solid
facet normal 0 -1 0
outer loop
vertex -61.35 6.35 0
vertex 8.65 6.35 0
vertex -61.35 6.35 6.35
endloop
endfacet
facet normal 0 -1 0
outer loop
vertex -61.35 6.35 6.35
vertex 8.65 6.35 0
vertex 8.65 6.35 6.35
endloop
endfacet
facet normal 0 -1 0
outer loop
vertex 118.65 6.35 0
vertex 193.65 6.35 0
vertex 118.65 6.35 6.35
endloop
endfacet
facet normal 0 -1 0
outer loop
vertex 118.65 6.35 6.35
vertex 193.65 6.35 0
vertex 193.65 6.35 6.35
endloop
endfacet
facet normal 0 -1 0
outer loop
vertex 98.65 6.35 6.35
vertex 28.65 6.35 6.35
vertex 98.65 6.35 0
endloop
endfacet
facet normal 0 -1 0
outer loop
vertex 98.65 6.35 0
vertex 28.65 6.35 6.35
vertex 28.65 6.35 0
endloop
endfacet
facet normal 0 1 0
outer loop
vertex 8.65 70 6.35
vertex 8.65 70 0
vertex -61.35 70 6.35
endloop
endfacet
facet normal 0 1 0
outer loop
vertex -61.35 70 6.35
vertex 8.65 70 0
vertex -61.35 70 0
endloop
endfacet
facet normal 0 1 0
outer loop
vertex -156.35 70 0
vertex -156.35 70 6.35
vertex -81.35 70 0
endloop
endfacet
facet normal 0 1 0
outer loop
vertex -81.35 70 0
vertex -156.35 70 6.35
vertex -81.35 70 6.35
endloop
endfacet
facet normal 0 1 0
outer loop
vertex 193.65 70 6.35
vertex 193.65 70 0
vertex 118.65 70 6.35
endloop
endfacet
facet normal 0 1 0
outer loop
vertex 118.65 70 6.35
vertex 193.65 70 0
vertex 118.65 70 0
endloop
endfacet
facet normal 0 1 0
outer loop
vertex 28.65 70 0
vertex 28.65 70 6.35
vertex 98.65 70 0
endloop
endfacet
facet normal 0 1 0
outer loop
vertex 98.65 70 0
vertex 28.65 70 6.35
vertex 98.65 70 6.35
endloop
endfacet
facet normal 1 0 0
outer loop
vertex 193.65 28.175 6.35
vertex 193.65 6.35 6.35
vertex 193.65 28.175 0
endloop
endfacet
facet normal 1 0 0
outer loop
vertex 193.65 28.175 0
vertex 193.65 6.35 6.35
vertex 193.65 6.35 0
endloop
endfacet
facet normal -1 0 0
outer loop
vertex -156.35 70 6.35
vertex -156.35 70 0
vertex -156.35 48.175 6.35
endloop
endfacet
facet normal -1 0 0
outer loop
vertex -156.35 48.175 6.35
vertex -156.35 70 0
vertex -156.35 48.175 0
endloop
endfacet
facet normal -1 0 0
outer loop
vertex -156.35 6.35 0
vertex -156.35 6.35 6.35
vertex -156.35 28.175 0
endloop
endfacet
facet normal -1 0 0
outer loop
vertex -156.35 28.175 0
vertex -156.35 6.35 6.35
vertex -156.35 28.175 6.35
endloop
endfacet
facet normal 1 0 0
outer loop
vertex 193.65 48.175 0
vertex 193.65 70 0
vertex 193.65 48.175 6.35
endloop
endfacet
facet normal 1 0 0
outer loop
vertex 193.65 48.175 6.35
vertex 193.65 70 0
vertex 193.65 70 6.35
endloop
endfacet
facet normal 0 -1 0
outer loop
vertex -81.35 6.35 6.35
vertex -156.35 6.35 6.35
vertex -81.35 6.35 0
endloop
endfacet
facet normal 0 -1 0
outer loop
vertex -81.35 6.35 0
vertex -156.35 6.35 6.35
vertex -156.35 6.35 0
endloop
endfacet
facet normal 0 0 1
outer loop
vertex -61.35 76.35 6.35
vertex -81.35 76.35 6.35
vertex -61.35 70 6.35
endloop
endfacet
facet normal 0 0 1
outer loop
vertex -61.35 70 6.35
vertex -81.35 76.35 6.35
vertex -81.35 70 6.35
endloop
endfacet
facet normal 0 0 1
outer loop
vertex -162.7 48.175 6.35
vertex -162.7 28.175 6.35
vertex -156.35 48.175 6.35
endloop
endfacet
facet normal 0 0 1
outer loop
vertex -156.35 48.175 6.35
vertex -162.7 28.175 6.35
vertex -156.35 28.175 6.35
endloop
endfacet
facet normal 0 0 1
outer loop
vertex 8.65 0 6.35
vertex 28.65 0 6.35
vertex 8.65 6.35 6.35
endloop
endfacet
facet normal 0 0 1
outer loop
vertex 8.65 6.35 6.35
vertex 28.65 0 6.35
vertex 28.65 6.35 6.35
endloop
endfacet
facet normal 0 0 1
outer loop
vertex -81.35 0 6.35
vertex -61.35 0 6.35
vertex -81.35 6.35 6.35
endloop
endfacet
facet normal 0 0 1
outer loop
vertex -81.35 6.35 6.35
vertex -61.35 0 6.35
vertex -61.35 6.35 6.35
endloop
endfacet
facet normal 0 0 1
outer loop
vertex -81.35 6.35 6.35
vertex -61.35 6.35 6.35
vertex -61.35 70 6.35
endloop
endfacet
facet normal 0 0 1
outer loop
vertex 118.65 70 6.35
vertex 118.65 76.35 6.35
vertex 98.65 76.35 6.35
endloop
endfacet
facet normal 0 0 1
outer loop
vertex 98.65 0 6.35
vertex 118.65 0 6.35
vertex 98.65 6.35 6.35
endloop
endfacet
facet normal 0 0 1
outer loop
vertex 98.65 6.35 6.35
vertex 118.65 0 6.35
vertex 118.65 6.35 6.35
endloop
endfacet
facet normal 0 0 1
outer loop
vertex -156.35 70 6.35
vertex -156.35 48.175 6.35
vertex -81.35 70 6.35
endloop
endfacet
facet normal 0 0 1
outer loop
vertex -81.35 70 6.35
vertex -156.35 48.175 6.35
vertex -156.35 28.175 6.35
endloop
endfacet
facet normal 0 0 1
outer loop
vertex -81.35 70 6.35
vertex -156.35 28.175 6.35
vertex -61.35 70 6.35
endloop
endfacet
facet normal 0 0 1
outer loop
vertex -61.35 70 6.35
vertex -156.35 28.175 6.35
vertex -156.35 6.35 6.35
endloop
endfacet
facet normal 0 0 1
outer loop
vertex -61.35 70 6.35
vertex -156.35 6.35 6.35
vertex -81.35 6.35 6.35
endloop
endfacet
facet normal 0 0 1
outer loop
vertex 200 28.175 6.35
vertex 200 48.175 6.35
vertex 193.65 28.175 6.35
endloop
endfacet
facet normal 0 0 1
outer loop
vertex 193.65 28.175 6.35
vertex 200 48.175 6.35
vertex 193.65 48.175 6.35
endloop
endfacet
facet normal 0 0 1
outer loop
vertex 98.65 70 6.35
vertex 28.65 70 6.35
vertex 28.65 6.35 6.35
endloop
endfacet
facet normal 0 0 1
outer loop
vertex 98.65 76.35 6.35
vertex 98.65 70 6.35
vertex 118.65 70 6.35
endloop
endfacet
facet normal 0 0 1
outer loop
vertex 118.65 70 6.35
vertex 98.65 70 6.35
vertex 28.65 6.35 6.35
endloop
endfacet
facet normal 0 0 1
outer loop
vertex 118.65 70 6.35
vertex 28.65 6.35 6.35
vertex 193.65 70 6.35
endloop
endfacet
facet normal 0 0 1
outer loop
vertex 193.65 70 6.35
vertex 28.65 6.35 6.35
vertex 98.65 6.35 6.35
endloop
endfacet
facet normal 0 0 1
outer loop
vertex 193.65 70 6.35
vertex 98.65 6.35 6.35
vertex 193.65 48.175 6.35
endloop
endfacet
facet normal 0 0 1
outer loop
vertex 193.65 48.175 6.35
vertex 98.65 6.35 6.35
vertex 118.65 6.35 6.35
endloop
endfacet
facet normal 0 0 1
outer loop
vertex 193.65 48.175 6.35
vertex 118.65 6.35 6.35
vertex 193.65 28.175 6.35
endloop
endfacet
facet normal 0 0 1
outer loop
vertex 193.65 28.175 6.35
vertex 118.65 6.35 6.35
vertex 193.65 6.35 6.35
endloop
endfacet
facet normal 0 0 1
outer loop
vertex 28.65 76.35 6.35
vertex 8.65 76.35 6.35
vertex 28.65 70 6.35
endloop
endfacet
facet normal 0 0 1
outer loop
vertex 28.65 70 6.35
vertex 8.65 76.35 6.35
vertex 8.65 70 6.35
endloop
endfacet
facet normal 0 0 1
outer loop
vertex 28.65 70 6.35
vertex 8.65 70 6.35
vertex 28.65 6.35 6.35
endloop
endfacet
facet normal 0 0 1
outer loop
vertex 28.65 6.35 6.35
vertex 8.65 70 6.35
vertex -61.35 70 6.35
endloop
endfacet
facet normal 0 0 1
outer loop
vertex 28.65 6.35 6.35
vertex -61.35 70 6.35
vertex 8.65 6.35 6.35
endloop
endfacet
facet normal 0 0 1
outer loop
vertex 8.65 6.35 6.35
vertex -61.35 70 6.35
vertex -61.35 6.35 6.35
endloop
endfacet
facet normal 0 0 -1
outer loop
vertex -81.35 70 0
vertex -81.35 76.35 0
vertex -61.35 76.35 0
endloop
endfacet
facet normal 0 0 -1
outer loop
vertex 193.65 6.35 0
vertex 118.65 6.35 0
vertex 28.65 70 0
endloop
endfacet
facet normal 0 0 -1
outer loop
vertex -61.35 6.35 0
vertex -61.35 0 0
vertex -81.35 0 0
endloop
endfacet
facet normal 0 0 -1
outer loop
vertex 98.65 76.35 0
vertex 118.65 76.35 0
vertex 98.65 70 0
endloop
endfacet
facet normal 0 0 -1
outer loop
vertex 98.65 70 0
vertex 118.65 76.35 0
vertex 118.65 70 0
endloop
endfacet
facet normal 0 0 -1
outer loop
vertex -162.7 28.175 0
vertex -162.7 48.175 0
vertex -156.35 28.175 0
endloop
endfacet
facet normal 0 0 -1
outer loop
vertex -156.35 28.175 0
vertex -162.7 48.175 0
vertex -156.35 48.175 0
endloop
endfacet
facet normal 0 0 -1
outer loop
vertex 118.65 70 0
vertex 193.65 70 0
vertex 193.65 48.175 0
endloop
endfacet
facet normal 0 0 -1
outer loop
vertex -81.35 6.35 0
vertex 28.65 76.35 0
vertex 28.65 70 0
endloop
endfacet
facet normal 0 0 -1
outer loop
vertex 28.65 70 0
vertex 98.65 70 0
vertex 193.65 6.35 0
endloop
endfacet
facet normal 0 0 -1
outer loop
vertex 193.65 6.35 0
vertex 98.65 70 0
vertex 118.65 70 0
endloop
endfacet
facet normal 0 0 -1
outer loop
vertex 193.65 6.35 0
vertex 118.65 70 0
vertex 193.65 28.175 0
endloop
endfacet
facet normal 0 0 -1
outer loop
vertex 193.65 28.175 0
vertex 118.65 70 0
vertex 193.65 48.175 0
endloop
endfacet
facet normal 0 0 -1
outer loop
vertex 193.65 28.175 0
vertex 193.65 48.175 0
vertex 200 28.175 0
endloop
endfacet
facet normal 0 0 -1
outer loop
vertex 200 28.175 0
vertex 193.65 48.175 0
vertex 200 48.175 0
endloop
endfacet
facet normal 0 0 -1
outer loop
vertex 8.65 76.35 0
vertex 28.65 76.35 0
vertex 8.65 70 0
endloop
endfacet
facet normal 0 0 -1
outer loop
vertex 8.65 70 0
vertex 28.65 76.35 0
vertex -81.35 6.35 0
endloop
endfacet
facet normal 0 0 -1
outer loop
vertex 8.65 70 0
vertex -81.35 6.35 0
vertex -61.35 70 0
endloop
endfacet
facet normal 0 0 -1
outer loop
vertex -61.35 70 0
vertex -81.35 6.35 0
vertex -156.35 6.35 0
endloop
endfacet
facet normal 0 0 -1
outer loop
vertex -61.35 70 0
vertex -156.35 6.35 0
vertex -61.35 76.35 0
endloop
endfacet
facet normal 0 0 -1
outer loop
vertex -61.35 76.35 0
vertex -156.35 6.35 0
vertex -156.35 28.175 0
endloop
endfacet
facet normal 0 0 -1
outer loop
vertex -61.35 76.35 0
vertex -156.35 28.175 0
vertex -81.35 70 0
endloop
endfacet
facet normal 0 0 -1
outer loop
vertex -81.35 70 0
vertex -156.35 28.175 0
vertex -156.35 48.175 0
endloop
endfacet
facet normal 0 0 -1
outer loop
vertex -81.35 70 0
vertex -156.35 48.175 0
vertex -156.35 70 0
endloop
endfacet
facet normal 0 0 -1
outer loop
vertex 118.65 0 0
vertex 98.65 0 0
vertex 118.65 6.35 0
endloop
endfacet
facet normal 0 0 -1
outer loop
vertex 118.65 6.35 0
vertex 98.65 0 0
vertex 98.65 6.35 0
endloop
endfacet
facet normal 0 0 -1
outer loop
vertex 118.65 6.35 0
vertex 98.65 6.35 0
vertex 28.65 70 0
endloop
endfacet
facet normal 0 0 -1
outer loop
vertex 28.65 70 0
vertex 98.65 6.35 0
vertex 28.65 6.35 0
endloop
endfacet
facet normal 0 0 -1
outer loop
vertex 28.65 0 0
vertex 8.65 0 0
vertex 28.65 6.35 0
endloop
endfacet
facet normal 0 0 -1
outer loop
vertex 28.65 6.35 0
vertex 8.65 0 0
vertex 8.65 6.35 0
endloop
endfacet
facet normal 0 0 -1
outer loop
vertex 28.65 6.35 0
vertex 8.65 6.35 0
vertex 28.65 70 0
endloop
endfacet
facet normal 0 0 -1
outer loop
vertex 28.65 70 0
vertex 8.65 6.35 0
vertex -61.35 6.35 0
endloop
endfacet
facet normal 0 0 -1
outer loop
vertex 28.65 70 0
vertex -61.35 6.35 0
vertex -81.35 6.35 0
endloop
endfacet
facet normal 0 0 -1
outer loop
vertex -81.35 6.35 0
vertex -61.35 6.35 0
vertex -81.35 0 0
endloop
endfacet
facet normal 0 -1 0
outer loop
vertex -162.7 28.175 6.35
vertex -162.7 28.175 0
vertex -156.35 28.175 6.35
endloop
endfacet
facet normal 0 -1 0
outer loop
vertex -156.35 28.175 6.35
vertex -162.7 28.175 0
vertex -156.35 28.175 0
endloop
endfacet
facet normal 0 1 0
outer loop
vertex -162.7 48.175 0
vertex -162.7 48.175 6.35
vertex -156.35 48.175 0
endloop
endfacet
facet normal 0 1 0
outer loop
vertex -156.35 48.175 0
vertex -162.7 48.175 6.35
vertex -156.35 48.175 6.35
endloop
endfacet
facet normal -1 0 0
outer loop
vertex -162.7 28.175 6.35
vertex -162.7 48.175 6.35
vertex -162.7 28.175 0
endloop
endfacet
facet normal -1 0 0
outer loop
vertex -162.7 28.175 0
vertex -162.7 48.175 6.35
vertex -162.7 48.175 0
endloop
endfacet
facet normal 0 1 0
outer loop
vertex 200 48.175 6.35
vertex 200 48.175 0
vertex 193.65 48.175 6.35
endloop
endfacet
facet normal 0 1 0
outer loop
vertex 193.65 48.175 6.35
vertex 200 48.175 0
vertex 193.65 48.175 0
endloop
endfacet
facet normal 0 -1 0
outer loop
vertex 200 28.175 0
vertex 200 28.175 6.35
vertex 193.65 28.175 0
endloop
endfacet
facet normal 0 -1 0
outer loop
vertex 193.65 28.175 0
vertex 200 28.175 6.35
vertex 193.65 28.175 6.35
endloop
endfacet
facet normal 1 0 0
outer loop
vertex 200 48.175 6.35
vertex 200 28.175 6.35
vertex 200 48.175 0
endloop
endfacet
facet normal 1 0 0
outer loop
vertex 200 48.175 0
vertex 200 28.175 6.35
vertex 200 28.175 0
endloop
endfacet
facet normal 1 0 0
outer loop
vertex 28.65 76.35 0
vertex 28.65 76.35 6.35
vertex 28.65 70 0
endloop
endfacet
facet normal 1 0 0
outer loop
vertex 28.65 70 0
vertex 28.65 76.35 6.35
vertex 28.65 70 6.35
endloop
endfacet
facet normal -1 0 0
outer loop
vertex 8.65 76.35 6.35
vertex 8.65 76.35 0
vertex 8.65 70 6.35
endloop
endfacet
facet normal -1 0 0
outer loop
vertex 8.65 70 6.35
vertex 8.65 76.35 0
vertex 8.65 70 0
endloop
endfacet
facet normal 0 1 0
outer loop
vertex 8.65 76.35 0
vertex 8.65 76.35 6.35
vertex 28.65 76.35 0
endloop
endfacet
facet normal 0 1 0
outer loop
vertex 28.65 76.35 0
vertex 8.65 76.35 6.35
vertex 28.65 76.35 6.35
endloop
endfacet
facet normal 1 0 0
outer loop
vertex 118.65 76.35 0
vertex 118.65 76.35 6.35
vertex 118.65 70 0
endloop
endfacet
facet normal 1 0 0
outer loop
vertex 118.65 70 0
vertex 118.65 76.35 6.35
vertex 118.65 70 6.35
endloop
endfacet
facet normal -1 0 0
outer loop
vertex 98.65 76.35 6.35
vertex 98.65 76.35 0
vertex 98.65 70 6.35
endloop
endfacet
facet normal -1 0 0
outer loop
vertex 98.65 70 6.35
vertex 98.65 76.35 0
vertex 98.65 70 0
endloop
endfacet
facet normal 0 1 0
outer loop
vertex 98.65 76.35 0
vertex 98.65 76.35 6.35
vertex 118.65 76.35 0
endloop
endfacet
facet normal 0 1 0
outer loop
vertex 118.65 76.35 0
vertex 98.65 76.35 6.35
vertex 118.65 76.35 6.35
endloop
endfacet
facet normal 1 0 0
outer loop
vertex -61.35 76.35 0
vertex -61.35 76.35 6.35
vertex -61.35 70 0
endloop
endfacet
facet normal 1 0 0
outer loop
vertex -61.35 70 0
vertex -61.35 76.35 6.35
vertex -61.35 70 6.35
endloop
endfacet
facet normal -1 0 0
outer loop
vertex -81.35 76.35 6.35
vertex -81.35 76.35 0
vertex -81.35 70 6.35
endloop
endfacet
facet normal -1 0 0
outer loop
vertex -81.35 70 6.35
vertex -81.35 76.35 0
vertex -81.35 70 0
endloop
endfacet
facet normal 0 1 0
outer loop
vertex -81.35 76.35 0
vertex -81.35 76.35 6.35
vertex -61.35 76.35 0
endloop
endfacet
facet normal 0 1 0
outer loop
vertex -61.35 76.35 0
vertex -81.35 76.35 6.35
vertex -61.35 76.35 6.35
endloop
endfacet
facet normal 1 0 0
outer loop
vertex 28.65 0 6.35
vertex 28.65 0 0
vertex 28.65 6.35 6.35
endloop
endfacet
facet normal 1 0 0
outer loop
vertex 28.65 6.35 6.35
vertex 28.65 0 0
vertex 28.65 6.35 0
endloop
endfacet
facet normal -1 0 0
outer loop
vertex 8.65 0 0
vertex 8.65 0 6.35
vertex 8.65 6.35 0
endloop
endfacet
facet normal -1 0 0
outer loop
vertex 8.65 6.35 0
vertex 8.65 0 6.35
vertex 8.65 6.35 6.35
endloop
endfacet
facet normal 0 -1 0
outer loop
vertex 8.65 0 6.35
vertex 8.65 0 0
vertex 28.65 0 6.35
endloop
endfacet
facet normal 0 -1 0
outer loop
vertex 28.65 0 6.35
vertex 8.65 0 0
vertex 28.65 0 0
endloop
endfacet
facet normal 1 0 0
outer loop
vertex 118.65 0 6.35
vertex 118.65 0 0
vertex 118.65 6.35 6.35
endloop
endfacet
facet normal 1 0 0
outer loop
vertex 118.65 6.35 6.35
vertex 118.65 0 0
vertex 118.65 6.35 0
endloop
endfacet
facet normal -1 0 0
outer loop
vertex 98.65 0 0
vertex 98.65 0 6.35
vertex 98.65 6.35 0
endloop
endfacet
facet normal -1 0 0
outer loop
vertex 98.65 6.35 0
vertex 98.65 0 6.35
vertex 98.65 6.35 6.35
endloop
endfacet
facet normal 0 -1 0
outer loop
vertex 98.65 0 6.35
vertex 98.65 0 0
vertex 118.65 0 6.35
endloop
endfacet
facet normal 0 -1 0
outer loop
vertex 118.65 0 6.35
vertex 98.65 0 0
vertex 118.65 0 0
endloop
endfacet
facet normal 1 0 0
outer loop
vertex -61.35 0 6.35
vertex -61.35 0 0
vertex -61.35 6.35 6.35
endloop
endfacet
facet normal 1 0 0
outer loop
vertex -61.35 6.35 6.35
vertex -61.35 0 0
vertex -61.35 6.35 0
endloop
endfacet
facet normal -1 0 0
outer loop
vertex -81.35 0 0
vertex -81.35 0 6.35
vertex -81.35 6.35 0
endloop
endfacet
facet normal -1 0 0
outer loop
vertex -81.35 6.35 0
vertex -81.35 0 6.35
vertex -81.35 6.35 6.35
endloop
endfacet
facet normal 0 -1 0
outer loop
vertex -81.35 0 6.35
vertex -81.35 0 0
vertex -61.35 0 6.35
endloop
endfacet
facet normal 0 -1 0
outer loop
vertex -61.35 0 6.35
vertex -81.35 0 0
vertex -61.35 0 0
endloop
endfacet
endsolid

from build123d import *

# Parameters (mm, degrees)
CROQUIS1_W              = 350
CROQUIS1_H              = 63.65
SALIENTE_EXTRUIR1_DEPTH = 6.35
CROQUIS2_W              = 6.35
CROQUIS2_H              = 20
SALIENTE_EXTRUIR2_DEPTH = 6.35
CROQUIS3_W              = 20
CROQUIS3_H              = 6.35
SALIENTE_EXTRUIR3_DEPTH = 6.35


with BuildPart() as part:
    # Croquis1 → Saliente-Extruir1 (new body)
    with BuildSketch(Plane(origin=(0, 0, 0), x_dir=(-1, 0, 0), z_dir=(0, 0, 1))):
        with Locations((-18.650000026, -38.175)):
            Rectangle(CROQUIS1_W, CROQUIS1_H)
    extrude(amount=SALIENTE_EXTRUIR1_DEPTH)

    # Croquis2 → Saliente-Extruir2 (add)
    with BuildSketch(Plane.ZY.offset(156.349999974)):
        with Locations((3.175, 38.175)):
            Rectangle(CROQUIS2_W, CROQUIS2_H)
    saliente_extruir2 = extrude(amount=SALIENTE_EXTRUIR2_DEPTH)

    # Simetría1: Saliente-Extruir2 across plane
    add(saliente_extruir2.mirror(Plane(origin=(18.650000026, 0, 0), x_dir=(0, 0, 1), z_dir=(1, 0, 0))))

    # Croquis3 → Saliente-Extruir3 (add)
    with BuildSketch(Plane(origin=(0, 70, 0), x_dir=(1, 0, 0), z_dir=(0, 1, 0))):
        with Locations((18.650000026, -3.175)):
            Rectangle(CROQUIS3_W, CROQUIS3_H)
        with Locations((108.650000026, -3.175)):
            Rectangle(CROQUIS3_W, CROQUIS3_H)
        with Locations((-71.349999974, -3.175)):
            Rectangle(CROQUIS3_W, CROQUIS3_H)
    saliente_extruir3 = extrude(amount=SALIENTE_EXTRUIR3_DEPTH)

    # Simetría2: Saliente-Extruir3 across plane
    add(saliente_extruir3.mirror(Plane.ZX.offset(38.175)))


solid = part.part
